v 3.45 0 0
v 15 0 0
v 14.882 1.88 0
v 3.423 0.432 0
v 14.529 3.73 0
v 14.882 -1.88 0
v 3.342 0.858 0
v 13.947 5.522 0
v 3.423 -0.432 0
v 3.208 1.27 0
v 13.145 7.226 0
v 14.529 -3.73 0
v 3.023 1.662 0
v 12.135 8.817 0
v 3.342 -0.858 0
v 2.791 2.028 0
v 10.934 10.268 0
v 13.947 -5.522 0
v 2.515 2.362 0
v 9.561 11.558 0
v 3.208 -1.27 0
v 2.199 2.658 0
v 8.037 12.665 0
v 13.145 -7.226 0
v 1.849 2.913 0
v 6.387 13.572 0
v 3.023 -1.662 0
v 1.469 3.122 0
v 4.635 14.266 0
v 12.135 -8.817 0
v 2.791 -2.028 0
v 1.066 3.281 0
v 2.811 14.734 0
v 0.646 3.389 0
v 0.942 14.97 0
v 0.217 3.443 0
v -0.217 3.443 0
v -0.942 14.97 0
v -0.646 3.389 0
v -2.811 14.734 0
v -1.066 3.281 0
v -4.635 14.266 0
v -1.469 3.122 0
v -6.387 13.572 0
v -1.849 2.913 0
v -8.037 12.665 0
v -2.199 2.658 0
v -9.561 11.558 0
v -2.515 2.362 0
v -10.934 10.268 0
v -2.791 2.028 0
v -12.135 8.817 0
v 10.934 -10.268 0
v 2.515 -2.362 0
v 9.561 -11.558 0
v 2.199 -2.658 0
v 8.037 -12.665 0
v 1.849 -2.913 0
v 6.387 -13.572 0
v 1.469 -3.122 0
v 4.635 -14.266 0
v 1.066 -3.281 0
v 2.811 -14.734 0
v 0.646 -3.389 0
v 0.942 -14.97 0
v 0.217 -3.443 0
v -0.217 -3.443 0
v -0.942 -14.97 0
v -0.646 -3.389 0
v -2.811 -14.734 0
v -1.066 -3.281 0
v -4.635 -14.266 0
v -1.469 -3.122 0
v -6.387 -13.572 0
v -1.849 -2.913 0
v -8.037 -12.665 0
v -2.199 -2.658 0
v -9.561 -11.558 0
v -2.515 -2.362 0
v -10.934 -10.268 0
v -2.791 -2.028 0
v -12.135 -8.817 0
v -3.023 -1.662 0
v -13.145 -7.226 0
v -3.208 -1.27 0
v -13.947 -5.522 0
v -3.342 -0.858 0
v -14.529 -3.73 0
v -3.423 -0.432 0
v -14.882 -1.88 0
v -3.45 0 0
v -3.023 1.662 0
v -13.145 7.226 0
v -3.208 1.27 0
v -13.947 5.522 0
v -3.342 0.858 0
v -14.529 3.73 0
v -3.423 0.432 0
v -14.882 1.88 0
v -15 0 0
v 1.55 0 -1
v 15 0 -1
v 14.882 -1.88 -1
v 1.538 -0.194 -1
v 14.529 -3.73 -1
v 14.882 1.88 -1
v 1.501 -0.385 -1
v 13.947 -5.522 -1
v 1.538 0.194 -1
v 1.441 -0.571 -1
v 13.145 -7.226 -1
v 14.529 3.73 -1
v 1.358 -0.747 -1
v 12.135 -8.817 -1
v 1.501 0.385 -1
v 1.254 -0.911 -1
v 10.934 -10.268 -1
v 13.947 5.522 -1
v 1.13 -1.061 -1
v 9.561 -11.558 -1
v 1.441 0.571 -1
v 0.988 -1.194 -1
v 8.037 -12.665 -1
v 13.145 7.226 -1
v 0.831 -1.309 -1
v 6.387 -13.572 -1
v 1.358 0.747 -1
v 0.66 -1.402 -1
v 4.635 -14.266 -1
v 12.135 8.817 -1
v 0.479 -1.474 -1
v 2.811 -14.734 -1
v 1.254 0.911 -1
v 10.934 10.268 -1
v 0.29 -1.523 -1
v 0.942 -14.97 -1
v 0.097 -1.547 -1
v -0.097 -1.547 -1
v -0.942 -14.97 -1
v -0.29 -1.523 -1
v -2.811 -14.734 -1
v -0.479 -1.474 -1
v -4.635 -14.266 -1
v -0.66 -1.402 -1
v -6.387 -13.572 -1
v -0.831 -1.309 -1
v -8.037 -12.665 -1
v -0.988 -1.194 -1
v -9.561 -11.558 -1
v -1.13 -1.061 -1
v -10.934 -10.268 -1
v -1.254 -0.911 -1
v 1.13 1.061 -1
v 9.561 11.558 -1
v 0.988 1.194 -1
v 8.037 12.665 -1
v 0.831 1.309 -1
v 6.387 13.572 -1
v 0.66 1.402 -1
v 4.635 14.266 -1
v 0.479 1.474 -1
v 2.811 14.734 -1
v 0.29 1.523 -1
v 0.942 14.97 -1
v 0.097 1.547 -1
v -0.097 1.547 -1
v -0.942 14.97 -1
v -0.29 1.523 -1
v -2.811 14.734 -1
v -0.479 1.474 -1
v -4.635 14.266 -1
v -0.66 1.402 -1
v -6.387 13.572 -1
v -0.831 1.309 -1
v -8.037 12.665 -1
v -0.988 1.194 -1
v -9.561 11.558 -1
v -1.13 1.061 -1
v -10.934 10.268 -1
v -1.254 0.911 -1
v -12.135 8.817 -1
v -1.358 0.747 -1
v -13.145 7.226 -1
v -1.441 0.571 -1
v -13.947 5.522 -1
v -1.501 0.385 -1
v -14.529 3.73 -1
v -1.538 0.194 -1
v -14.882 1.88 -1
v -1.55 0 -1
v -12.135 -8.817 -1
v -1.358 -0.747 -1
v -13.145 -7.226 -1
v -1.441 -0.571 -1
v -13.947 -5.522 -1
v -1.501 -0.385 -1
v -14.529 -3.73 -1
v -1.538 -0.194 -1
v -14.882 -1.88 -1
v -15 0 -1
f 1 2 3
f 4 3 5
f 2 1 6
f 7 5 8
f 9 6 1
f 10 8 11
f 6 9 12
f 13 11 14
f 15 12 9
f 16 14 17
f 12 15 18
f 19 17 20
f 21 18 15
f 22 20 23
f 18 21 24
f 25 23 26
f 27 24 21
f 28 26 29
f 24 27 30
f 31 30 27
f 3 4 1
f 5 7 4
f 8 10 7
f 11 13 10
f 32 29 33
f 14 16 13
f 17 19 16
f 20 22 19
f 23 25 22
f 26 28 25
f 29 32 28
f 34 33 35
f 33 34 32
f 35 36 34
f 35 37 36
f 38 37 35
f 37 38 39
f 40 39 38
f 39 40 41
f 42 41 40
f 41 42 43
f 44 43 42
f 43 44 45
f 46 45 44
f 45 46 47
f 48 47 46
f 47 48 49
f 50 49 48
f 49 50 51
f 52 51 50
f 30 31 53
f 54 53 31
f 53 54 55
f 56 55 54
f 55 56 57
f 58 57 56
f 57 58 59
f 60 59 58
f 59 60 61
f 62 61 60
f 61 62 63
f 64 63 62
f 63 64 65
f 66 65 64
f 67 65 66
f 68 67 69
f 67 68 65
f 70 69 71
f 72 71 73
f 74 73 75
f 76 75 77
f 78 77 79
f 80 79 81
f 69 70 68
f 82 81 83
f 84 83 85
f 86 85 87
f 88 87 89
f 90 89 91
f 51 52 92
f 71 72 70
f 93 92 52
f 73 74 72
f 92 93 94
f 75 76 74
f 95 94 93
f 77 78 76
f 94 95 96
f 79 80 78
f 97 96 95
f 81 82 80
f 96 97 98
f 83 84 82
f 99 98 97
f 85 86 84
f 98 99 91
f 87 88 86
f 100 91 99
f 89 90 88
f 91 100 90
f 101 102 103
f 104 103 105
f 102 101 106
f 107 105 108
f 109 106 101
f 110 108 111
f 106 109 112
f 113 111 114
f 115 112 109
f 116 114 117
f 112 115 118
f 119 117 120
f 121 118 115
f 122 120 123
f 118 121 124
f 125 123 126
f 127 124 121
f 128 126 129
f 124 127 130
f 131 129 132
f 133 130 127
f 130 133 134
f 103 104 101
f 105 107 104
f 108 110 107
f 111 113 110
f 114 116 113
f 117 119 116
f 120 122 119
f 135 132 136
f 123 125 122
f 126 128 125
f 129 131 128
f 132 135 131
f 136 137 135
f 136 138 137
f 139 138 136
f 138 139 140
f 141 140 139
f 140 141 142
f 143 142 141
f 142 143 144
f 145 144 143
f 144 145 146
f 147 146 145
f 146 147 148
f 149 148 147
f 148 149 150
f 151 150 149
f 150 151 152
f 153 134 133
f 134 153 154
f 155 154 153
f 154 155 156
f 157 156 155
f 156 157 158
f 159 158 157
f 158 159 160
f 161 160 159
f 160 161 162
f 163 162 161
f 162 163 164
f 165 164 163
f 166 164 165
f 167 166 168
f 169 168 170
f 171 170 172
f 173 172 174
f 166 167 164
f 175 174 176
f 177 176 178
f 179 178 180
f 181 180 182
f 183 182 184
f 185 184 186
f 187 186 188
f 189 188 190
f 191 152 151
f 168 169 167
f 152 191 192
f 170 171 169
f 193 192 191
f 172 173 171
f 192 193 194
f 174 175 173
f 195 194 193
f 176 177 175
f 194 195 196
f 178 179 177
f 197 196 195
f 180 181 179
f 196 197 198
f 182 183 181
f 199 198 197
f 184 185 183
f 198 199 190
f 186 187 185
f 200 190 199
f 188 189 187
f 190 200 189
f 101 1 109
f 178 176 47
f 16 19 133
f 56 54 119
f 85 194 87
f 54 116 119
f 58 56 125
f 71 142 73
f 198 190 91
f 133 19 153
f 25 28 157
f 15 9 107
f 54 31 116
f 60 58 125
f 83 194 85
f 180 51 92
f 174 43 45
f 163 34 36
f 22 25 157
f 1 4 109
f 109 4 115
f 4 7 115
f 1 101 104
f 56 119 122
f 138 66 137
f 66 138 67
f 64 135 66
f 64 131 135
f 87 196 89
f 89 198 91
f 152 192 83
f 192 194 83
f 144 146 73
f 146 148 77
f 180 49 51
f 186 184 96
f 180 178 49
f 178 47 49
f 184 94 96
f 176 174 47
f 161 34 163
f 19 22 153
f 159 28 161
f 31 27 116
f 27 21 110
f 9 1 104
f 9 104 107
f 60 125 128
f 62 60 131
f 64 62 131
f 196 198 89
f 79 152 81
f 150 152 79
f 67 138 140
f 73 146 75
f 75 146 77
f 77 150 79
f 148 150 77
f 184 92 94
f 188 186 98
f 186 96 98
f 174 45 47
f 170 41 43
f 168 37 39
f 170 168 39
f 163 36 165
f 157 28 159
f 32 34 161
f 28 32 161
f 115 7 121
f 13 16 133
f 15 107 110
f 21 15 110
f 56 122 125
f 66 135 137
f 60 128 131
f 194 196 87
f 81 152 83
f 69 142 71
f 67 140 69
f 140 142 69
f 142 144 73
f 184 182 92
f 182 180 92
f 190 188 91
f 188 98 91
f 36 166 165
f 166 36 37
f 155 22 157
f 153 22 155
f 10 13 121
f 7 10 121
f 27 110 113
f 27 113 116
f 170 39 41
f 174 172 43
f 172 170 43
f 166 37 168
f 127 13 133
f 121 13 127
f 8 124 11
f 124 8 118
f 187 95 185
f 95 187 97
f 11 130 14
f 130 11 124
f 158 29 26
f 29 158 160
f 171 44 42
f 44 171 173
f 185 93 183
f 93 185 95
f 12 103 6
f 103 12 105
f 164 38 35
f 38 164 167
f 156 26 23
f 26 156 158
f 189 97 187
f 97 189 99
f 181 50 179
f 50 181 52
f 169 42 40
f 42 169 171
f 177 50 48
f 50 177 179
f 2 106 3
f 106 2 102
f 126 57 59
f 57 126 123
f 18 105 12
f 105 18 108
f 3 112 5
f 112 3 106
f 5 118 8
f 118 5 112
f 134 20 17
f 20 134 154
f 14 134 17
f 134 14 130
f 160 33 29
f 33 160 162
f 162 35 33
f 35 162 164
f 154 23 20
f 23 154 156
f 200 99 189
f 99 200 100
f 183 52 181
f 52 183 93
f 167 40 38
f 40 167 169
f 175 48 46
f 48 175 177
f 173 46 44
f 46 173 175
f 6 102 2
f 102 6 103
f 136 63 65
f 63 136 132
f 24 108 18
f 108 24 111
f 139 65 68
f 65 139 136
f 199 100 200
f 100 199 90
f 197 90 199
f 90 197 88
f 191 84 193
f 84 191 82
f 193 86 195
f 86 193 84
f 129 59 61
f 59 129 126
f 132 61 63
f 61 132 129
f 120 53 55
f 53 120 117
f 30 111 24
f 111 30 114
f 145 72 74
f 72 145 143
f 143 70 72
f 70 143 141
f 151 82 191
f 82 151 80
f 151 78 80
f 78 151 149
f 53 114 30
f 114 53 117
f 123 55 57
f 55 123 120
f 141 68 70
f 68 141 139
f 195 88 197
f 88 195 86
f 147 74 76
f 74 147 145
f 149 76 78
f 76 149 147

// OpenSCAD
$fn = 50;


difference() {
	union() {
		translate(v = [0, 0, -1.0000000000]) {
			cylinder(h = 1.0000000000, r = 15.0000000000);
		}
	}
	union() {
		translate(v = [0, 0, 0]) {
			rotate(a = [0, 0, 0]) {
				difference() {
					union() {
						#translate(v = [0, 0, -1.0000000000]) {
							cylinder(h = 1.0000000000, r = 1.2500000000);
						}
						#translate(v = [0, 0, -1.0000000000]) {
							cylinder(h = 1.0000000000, r1 = 1.5500000000, r2 = 3.4500000000);
						}
						#translate(v = [0, 0, -1.0000000000]) {
							cylinder(h = 1.0000000000, r = 1.5500000000);
						}
						#translate(v = [0, 0, -1.0000000000]) {
							cylinder(h = 1.0000000000, r = 1.2500000000);
						}
					}
					union();
				}
			}
		}
	}
}
